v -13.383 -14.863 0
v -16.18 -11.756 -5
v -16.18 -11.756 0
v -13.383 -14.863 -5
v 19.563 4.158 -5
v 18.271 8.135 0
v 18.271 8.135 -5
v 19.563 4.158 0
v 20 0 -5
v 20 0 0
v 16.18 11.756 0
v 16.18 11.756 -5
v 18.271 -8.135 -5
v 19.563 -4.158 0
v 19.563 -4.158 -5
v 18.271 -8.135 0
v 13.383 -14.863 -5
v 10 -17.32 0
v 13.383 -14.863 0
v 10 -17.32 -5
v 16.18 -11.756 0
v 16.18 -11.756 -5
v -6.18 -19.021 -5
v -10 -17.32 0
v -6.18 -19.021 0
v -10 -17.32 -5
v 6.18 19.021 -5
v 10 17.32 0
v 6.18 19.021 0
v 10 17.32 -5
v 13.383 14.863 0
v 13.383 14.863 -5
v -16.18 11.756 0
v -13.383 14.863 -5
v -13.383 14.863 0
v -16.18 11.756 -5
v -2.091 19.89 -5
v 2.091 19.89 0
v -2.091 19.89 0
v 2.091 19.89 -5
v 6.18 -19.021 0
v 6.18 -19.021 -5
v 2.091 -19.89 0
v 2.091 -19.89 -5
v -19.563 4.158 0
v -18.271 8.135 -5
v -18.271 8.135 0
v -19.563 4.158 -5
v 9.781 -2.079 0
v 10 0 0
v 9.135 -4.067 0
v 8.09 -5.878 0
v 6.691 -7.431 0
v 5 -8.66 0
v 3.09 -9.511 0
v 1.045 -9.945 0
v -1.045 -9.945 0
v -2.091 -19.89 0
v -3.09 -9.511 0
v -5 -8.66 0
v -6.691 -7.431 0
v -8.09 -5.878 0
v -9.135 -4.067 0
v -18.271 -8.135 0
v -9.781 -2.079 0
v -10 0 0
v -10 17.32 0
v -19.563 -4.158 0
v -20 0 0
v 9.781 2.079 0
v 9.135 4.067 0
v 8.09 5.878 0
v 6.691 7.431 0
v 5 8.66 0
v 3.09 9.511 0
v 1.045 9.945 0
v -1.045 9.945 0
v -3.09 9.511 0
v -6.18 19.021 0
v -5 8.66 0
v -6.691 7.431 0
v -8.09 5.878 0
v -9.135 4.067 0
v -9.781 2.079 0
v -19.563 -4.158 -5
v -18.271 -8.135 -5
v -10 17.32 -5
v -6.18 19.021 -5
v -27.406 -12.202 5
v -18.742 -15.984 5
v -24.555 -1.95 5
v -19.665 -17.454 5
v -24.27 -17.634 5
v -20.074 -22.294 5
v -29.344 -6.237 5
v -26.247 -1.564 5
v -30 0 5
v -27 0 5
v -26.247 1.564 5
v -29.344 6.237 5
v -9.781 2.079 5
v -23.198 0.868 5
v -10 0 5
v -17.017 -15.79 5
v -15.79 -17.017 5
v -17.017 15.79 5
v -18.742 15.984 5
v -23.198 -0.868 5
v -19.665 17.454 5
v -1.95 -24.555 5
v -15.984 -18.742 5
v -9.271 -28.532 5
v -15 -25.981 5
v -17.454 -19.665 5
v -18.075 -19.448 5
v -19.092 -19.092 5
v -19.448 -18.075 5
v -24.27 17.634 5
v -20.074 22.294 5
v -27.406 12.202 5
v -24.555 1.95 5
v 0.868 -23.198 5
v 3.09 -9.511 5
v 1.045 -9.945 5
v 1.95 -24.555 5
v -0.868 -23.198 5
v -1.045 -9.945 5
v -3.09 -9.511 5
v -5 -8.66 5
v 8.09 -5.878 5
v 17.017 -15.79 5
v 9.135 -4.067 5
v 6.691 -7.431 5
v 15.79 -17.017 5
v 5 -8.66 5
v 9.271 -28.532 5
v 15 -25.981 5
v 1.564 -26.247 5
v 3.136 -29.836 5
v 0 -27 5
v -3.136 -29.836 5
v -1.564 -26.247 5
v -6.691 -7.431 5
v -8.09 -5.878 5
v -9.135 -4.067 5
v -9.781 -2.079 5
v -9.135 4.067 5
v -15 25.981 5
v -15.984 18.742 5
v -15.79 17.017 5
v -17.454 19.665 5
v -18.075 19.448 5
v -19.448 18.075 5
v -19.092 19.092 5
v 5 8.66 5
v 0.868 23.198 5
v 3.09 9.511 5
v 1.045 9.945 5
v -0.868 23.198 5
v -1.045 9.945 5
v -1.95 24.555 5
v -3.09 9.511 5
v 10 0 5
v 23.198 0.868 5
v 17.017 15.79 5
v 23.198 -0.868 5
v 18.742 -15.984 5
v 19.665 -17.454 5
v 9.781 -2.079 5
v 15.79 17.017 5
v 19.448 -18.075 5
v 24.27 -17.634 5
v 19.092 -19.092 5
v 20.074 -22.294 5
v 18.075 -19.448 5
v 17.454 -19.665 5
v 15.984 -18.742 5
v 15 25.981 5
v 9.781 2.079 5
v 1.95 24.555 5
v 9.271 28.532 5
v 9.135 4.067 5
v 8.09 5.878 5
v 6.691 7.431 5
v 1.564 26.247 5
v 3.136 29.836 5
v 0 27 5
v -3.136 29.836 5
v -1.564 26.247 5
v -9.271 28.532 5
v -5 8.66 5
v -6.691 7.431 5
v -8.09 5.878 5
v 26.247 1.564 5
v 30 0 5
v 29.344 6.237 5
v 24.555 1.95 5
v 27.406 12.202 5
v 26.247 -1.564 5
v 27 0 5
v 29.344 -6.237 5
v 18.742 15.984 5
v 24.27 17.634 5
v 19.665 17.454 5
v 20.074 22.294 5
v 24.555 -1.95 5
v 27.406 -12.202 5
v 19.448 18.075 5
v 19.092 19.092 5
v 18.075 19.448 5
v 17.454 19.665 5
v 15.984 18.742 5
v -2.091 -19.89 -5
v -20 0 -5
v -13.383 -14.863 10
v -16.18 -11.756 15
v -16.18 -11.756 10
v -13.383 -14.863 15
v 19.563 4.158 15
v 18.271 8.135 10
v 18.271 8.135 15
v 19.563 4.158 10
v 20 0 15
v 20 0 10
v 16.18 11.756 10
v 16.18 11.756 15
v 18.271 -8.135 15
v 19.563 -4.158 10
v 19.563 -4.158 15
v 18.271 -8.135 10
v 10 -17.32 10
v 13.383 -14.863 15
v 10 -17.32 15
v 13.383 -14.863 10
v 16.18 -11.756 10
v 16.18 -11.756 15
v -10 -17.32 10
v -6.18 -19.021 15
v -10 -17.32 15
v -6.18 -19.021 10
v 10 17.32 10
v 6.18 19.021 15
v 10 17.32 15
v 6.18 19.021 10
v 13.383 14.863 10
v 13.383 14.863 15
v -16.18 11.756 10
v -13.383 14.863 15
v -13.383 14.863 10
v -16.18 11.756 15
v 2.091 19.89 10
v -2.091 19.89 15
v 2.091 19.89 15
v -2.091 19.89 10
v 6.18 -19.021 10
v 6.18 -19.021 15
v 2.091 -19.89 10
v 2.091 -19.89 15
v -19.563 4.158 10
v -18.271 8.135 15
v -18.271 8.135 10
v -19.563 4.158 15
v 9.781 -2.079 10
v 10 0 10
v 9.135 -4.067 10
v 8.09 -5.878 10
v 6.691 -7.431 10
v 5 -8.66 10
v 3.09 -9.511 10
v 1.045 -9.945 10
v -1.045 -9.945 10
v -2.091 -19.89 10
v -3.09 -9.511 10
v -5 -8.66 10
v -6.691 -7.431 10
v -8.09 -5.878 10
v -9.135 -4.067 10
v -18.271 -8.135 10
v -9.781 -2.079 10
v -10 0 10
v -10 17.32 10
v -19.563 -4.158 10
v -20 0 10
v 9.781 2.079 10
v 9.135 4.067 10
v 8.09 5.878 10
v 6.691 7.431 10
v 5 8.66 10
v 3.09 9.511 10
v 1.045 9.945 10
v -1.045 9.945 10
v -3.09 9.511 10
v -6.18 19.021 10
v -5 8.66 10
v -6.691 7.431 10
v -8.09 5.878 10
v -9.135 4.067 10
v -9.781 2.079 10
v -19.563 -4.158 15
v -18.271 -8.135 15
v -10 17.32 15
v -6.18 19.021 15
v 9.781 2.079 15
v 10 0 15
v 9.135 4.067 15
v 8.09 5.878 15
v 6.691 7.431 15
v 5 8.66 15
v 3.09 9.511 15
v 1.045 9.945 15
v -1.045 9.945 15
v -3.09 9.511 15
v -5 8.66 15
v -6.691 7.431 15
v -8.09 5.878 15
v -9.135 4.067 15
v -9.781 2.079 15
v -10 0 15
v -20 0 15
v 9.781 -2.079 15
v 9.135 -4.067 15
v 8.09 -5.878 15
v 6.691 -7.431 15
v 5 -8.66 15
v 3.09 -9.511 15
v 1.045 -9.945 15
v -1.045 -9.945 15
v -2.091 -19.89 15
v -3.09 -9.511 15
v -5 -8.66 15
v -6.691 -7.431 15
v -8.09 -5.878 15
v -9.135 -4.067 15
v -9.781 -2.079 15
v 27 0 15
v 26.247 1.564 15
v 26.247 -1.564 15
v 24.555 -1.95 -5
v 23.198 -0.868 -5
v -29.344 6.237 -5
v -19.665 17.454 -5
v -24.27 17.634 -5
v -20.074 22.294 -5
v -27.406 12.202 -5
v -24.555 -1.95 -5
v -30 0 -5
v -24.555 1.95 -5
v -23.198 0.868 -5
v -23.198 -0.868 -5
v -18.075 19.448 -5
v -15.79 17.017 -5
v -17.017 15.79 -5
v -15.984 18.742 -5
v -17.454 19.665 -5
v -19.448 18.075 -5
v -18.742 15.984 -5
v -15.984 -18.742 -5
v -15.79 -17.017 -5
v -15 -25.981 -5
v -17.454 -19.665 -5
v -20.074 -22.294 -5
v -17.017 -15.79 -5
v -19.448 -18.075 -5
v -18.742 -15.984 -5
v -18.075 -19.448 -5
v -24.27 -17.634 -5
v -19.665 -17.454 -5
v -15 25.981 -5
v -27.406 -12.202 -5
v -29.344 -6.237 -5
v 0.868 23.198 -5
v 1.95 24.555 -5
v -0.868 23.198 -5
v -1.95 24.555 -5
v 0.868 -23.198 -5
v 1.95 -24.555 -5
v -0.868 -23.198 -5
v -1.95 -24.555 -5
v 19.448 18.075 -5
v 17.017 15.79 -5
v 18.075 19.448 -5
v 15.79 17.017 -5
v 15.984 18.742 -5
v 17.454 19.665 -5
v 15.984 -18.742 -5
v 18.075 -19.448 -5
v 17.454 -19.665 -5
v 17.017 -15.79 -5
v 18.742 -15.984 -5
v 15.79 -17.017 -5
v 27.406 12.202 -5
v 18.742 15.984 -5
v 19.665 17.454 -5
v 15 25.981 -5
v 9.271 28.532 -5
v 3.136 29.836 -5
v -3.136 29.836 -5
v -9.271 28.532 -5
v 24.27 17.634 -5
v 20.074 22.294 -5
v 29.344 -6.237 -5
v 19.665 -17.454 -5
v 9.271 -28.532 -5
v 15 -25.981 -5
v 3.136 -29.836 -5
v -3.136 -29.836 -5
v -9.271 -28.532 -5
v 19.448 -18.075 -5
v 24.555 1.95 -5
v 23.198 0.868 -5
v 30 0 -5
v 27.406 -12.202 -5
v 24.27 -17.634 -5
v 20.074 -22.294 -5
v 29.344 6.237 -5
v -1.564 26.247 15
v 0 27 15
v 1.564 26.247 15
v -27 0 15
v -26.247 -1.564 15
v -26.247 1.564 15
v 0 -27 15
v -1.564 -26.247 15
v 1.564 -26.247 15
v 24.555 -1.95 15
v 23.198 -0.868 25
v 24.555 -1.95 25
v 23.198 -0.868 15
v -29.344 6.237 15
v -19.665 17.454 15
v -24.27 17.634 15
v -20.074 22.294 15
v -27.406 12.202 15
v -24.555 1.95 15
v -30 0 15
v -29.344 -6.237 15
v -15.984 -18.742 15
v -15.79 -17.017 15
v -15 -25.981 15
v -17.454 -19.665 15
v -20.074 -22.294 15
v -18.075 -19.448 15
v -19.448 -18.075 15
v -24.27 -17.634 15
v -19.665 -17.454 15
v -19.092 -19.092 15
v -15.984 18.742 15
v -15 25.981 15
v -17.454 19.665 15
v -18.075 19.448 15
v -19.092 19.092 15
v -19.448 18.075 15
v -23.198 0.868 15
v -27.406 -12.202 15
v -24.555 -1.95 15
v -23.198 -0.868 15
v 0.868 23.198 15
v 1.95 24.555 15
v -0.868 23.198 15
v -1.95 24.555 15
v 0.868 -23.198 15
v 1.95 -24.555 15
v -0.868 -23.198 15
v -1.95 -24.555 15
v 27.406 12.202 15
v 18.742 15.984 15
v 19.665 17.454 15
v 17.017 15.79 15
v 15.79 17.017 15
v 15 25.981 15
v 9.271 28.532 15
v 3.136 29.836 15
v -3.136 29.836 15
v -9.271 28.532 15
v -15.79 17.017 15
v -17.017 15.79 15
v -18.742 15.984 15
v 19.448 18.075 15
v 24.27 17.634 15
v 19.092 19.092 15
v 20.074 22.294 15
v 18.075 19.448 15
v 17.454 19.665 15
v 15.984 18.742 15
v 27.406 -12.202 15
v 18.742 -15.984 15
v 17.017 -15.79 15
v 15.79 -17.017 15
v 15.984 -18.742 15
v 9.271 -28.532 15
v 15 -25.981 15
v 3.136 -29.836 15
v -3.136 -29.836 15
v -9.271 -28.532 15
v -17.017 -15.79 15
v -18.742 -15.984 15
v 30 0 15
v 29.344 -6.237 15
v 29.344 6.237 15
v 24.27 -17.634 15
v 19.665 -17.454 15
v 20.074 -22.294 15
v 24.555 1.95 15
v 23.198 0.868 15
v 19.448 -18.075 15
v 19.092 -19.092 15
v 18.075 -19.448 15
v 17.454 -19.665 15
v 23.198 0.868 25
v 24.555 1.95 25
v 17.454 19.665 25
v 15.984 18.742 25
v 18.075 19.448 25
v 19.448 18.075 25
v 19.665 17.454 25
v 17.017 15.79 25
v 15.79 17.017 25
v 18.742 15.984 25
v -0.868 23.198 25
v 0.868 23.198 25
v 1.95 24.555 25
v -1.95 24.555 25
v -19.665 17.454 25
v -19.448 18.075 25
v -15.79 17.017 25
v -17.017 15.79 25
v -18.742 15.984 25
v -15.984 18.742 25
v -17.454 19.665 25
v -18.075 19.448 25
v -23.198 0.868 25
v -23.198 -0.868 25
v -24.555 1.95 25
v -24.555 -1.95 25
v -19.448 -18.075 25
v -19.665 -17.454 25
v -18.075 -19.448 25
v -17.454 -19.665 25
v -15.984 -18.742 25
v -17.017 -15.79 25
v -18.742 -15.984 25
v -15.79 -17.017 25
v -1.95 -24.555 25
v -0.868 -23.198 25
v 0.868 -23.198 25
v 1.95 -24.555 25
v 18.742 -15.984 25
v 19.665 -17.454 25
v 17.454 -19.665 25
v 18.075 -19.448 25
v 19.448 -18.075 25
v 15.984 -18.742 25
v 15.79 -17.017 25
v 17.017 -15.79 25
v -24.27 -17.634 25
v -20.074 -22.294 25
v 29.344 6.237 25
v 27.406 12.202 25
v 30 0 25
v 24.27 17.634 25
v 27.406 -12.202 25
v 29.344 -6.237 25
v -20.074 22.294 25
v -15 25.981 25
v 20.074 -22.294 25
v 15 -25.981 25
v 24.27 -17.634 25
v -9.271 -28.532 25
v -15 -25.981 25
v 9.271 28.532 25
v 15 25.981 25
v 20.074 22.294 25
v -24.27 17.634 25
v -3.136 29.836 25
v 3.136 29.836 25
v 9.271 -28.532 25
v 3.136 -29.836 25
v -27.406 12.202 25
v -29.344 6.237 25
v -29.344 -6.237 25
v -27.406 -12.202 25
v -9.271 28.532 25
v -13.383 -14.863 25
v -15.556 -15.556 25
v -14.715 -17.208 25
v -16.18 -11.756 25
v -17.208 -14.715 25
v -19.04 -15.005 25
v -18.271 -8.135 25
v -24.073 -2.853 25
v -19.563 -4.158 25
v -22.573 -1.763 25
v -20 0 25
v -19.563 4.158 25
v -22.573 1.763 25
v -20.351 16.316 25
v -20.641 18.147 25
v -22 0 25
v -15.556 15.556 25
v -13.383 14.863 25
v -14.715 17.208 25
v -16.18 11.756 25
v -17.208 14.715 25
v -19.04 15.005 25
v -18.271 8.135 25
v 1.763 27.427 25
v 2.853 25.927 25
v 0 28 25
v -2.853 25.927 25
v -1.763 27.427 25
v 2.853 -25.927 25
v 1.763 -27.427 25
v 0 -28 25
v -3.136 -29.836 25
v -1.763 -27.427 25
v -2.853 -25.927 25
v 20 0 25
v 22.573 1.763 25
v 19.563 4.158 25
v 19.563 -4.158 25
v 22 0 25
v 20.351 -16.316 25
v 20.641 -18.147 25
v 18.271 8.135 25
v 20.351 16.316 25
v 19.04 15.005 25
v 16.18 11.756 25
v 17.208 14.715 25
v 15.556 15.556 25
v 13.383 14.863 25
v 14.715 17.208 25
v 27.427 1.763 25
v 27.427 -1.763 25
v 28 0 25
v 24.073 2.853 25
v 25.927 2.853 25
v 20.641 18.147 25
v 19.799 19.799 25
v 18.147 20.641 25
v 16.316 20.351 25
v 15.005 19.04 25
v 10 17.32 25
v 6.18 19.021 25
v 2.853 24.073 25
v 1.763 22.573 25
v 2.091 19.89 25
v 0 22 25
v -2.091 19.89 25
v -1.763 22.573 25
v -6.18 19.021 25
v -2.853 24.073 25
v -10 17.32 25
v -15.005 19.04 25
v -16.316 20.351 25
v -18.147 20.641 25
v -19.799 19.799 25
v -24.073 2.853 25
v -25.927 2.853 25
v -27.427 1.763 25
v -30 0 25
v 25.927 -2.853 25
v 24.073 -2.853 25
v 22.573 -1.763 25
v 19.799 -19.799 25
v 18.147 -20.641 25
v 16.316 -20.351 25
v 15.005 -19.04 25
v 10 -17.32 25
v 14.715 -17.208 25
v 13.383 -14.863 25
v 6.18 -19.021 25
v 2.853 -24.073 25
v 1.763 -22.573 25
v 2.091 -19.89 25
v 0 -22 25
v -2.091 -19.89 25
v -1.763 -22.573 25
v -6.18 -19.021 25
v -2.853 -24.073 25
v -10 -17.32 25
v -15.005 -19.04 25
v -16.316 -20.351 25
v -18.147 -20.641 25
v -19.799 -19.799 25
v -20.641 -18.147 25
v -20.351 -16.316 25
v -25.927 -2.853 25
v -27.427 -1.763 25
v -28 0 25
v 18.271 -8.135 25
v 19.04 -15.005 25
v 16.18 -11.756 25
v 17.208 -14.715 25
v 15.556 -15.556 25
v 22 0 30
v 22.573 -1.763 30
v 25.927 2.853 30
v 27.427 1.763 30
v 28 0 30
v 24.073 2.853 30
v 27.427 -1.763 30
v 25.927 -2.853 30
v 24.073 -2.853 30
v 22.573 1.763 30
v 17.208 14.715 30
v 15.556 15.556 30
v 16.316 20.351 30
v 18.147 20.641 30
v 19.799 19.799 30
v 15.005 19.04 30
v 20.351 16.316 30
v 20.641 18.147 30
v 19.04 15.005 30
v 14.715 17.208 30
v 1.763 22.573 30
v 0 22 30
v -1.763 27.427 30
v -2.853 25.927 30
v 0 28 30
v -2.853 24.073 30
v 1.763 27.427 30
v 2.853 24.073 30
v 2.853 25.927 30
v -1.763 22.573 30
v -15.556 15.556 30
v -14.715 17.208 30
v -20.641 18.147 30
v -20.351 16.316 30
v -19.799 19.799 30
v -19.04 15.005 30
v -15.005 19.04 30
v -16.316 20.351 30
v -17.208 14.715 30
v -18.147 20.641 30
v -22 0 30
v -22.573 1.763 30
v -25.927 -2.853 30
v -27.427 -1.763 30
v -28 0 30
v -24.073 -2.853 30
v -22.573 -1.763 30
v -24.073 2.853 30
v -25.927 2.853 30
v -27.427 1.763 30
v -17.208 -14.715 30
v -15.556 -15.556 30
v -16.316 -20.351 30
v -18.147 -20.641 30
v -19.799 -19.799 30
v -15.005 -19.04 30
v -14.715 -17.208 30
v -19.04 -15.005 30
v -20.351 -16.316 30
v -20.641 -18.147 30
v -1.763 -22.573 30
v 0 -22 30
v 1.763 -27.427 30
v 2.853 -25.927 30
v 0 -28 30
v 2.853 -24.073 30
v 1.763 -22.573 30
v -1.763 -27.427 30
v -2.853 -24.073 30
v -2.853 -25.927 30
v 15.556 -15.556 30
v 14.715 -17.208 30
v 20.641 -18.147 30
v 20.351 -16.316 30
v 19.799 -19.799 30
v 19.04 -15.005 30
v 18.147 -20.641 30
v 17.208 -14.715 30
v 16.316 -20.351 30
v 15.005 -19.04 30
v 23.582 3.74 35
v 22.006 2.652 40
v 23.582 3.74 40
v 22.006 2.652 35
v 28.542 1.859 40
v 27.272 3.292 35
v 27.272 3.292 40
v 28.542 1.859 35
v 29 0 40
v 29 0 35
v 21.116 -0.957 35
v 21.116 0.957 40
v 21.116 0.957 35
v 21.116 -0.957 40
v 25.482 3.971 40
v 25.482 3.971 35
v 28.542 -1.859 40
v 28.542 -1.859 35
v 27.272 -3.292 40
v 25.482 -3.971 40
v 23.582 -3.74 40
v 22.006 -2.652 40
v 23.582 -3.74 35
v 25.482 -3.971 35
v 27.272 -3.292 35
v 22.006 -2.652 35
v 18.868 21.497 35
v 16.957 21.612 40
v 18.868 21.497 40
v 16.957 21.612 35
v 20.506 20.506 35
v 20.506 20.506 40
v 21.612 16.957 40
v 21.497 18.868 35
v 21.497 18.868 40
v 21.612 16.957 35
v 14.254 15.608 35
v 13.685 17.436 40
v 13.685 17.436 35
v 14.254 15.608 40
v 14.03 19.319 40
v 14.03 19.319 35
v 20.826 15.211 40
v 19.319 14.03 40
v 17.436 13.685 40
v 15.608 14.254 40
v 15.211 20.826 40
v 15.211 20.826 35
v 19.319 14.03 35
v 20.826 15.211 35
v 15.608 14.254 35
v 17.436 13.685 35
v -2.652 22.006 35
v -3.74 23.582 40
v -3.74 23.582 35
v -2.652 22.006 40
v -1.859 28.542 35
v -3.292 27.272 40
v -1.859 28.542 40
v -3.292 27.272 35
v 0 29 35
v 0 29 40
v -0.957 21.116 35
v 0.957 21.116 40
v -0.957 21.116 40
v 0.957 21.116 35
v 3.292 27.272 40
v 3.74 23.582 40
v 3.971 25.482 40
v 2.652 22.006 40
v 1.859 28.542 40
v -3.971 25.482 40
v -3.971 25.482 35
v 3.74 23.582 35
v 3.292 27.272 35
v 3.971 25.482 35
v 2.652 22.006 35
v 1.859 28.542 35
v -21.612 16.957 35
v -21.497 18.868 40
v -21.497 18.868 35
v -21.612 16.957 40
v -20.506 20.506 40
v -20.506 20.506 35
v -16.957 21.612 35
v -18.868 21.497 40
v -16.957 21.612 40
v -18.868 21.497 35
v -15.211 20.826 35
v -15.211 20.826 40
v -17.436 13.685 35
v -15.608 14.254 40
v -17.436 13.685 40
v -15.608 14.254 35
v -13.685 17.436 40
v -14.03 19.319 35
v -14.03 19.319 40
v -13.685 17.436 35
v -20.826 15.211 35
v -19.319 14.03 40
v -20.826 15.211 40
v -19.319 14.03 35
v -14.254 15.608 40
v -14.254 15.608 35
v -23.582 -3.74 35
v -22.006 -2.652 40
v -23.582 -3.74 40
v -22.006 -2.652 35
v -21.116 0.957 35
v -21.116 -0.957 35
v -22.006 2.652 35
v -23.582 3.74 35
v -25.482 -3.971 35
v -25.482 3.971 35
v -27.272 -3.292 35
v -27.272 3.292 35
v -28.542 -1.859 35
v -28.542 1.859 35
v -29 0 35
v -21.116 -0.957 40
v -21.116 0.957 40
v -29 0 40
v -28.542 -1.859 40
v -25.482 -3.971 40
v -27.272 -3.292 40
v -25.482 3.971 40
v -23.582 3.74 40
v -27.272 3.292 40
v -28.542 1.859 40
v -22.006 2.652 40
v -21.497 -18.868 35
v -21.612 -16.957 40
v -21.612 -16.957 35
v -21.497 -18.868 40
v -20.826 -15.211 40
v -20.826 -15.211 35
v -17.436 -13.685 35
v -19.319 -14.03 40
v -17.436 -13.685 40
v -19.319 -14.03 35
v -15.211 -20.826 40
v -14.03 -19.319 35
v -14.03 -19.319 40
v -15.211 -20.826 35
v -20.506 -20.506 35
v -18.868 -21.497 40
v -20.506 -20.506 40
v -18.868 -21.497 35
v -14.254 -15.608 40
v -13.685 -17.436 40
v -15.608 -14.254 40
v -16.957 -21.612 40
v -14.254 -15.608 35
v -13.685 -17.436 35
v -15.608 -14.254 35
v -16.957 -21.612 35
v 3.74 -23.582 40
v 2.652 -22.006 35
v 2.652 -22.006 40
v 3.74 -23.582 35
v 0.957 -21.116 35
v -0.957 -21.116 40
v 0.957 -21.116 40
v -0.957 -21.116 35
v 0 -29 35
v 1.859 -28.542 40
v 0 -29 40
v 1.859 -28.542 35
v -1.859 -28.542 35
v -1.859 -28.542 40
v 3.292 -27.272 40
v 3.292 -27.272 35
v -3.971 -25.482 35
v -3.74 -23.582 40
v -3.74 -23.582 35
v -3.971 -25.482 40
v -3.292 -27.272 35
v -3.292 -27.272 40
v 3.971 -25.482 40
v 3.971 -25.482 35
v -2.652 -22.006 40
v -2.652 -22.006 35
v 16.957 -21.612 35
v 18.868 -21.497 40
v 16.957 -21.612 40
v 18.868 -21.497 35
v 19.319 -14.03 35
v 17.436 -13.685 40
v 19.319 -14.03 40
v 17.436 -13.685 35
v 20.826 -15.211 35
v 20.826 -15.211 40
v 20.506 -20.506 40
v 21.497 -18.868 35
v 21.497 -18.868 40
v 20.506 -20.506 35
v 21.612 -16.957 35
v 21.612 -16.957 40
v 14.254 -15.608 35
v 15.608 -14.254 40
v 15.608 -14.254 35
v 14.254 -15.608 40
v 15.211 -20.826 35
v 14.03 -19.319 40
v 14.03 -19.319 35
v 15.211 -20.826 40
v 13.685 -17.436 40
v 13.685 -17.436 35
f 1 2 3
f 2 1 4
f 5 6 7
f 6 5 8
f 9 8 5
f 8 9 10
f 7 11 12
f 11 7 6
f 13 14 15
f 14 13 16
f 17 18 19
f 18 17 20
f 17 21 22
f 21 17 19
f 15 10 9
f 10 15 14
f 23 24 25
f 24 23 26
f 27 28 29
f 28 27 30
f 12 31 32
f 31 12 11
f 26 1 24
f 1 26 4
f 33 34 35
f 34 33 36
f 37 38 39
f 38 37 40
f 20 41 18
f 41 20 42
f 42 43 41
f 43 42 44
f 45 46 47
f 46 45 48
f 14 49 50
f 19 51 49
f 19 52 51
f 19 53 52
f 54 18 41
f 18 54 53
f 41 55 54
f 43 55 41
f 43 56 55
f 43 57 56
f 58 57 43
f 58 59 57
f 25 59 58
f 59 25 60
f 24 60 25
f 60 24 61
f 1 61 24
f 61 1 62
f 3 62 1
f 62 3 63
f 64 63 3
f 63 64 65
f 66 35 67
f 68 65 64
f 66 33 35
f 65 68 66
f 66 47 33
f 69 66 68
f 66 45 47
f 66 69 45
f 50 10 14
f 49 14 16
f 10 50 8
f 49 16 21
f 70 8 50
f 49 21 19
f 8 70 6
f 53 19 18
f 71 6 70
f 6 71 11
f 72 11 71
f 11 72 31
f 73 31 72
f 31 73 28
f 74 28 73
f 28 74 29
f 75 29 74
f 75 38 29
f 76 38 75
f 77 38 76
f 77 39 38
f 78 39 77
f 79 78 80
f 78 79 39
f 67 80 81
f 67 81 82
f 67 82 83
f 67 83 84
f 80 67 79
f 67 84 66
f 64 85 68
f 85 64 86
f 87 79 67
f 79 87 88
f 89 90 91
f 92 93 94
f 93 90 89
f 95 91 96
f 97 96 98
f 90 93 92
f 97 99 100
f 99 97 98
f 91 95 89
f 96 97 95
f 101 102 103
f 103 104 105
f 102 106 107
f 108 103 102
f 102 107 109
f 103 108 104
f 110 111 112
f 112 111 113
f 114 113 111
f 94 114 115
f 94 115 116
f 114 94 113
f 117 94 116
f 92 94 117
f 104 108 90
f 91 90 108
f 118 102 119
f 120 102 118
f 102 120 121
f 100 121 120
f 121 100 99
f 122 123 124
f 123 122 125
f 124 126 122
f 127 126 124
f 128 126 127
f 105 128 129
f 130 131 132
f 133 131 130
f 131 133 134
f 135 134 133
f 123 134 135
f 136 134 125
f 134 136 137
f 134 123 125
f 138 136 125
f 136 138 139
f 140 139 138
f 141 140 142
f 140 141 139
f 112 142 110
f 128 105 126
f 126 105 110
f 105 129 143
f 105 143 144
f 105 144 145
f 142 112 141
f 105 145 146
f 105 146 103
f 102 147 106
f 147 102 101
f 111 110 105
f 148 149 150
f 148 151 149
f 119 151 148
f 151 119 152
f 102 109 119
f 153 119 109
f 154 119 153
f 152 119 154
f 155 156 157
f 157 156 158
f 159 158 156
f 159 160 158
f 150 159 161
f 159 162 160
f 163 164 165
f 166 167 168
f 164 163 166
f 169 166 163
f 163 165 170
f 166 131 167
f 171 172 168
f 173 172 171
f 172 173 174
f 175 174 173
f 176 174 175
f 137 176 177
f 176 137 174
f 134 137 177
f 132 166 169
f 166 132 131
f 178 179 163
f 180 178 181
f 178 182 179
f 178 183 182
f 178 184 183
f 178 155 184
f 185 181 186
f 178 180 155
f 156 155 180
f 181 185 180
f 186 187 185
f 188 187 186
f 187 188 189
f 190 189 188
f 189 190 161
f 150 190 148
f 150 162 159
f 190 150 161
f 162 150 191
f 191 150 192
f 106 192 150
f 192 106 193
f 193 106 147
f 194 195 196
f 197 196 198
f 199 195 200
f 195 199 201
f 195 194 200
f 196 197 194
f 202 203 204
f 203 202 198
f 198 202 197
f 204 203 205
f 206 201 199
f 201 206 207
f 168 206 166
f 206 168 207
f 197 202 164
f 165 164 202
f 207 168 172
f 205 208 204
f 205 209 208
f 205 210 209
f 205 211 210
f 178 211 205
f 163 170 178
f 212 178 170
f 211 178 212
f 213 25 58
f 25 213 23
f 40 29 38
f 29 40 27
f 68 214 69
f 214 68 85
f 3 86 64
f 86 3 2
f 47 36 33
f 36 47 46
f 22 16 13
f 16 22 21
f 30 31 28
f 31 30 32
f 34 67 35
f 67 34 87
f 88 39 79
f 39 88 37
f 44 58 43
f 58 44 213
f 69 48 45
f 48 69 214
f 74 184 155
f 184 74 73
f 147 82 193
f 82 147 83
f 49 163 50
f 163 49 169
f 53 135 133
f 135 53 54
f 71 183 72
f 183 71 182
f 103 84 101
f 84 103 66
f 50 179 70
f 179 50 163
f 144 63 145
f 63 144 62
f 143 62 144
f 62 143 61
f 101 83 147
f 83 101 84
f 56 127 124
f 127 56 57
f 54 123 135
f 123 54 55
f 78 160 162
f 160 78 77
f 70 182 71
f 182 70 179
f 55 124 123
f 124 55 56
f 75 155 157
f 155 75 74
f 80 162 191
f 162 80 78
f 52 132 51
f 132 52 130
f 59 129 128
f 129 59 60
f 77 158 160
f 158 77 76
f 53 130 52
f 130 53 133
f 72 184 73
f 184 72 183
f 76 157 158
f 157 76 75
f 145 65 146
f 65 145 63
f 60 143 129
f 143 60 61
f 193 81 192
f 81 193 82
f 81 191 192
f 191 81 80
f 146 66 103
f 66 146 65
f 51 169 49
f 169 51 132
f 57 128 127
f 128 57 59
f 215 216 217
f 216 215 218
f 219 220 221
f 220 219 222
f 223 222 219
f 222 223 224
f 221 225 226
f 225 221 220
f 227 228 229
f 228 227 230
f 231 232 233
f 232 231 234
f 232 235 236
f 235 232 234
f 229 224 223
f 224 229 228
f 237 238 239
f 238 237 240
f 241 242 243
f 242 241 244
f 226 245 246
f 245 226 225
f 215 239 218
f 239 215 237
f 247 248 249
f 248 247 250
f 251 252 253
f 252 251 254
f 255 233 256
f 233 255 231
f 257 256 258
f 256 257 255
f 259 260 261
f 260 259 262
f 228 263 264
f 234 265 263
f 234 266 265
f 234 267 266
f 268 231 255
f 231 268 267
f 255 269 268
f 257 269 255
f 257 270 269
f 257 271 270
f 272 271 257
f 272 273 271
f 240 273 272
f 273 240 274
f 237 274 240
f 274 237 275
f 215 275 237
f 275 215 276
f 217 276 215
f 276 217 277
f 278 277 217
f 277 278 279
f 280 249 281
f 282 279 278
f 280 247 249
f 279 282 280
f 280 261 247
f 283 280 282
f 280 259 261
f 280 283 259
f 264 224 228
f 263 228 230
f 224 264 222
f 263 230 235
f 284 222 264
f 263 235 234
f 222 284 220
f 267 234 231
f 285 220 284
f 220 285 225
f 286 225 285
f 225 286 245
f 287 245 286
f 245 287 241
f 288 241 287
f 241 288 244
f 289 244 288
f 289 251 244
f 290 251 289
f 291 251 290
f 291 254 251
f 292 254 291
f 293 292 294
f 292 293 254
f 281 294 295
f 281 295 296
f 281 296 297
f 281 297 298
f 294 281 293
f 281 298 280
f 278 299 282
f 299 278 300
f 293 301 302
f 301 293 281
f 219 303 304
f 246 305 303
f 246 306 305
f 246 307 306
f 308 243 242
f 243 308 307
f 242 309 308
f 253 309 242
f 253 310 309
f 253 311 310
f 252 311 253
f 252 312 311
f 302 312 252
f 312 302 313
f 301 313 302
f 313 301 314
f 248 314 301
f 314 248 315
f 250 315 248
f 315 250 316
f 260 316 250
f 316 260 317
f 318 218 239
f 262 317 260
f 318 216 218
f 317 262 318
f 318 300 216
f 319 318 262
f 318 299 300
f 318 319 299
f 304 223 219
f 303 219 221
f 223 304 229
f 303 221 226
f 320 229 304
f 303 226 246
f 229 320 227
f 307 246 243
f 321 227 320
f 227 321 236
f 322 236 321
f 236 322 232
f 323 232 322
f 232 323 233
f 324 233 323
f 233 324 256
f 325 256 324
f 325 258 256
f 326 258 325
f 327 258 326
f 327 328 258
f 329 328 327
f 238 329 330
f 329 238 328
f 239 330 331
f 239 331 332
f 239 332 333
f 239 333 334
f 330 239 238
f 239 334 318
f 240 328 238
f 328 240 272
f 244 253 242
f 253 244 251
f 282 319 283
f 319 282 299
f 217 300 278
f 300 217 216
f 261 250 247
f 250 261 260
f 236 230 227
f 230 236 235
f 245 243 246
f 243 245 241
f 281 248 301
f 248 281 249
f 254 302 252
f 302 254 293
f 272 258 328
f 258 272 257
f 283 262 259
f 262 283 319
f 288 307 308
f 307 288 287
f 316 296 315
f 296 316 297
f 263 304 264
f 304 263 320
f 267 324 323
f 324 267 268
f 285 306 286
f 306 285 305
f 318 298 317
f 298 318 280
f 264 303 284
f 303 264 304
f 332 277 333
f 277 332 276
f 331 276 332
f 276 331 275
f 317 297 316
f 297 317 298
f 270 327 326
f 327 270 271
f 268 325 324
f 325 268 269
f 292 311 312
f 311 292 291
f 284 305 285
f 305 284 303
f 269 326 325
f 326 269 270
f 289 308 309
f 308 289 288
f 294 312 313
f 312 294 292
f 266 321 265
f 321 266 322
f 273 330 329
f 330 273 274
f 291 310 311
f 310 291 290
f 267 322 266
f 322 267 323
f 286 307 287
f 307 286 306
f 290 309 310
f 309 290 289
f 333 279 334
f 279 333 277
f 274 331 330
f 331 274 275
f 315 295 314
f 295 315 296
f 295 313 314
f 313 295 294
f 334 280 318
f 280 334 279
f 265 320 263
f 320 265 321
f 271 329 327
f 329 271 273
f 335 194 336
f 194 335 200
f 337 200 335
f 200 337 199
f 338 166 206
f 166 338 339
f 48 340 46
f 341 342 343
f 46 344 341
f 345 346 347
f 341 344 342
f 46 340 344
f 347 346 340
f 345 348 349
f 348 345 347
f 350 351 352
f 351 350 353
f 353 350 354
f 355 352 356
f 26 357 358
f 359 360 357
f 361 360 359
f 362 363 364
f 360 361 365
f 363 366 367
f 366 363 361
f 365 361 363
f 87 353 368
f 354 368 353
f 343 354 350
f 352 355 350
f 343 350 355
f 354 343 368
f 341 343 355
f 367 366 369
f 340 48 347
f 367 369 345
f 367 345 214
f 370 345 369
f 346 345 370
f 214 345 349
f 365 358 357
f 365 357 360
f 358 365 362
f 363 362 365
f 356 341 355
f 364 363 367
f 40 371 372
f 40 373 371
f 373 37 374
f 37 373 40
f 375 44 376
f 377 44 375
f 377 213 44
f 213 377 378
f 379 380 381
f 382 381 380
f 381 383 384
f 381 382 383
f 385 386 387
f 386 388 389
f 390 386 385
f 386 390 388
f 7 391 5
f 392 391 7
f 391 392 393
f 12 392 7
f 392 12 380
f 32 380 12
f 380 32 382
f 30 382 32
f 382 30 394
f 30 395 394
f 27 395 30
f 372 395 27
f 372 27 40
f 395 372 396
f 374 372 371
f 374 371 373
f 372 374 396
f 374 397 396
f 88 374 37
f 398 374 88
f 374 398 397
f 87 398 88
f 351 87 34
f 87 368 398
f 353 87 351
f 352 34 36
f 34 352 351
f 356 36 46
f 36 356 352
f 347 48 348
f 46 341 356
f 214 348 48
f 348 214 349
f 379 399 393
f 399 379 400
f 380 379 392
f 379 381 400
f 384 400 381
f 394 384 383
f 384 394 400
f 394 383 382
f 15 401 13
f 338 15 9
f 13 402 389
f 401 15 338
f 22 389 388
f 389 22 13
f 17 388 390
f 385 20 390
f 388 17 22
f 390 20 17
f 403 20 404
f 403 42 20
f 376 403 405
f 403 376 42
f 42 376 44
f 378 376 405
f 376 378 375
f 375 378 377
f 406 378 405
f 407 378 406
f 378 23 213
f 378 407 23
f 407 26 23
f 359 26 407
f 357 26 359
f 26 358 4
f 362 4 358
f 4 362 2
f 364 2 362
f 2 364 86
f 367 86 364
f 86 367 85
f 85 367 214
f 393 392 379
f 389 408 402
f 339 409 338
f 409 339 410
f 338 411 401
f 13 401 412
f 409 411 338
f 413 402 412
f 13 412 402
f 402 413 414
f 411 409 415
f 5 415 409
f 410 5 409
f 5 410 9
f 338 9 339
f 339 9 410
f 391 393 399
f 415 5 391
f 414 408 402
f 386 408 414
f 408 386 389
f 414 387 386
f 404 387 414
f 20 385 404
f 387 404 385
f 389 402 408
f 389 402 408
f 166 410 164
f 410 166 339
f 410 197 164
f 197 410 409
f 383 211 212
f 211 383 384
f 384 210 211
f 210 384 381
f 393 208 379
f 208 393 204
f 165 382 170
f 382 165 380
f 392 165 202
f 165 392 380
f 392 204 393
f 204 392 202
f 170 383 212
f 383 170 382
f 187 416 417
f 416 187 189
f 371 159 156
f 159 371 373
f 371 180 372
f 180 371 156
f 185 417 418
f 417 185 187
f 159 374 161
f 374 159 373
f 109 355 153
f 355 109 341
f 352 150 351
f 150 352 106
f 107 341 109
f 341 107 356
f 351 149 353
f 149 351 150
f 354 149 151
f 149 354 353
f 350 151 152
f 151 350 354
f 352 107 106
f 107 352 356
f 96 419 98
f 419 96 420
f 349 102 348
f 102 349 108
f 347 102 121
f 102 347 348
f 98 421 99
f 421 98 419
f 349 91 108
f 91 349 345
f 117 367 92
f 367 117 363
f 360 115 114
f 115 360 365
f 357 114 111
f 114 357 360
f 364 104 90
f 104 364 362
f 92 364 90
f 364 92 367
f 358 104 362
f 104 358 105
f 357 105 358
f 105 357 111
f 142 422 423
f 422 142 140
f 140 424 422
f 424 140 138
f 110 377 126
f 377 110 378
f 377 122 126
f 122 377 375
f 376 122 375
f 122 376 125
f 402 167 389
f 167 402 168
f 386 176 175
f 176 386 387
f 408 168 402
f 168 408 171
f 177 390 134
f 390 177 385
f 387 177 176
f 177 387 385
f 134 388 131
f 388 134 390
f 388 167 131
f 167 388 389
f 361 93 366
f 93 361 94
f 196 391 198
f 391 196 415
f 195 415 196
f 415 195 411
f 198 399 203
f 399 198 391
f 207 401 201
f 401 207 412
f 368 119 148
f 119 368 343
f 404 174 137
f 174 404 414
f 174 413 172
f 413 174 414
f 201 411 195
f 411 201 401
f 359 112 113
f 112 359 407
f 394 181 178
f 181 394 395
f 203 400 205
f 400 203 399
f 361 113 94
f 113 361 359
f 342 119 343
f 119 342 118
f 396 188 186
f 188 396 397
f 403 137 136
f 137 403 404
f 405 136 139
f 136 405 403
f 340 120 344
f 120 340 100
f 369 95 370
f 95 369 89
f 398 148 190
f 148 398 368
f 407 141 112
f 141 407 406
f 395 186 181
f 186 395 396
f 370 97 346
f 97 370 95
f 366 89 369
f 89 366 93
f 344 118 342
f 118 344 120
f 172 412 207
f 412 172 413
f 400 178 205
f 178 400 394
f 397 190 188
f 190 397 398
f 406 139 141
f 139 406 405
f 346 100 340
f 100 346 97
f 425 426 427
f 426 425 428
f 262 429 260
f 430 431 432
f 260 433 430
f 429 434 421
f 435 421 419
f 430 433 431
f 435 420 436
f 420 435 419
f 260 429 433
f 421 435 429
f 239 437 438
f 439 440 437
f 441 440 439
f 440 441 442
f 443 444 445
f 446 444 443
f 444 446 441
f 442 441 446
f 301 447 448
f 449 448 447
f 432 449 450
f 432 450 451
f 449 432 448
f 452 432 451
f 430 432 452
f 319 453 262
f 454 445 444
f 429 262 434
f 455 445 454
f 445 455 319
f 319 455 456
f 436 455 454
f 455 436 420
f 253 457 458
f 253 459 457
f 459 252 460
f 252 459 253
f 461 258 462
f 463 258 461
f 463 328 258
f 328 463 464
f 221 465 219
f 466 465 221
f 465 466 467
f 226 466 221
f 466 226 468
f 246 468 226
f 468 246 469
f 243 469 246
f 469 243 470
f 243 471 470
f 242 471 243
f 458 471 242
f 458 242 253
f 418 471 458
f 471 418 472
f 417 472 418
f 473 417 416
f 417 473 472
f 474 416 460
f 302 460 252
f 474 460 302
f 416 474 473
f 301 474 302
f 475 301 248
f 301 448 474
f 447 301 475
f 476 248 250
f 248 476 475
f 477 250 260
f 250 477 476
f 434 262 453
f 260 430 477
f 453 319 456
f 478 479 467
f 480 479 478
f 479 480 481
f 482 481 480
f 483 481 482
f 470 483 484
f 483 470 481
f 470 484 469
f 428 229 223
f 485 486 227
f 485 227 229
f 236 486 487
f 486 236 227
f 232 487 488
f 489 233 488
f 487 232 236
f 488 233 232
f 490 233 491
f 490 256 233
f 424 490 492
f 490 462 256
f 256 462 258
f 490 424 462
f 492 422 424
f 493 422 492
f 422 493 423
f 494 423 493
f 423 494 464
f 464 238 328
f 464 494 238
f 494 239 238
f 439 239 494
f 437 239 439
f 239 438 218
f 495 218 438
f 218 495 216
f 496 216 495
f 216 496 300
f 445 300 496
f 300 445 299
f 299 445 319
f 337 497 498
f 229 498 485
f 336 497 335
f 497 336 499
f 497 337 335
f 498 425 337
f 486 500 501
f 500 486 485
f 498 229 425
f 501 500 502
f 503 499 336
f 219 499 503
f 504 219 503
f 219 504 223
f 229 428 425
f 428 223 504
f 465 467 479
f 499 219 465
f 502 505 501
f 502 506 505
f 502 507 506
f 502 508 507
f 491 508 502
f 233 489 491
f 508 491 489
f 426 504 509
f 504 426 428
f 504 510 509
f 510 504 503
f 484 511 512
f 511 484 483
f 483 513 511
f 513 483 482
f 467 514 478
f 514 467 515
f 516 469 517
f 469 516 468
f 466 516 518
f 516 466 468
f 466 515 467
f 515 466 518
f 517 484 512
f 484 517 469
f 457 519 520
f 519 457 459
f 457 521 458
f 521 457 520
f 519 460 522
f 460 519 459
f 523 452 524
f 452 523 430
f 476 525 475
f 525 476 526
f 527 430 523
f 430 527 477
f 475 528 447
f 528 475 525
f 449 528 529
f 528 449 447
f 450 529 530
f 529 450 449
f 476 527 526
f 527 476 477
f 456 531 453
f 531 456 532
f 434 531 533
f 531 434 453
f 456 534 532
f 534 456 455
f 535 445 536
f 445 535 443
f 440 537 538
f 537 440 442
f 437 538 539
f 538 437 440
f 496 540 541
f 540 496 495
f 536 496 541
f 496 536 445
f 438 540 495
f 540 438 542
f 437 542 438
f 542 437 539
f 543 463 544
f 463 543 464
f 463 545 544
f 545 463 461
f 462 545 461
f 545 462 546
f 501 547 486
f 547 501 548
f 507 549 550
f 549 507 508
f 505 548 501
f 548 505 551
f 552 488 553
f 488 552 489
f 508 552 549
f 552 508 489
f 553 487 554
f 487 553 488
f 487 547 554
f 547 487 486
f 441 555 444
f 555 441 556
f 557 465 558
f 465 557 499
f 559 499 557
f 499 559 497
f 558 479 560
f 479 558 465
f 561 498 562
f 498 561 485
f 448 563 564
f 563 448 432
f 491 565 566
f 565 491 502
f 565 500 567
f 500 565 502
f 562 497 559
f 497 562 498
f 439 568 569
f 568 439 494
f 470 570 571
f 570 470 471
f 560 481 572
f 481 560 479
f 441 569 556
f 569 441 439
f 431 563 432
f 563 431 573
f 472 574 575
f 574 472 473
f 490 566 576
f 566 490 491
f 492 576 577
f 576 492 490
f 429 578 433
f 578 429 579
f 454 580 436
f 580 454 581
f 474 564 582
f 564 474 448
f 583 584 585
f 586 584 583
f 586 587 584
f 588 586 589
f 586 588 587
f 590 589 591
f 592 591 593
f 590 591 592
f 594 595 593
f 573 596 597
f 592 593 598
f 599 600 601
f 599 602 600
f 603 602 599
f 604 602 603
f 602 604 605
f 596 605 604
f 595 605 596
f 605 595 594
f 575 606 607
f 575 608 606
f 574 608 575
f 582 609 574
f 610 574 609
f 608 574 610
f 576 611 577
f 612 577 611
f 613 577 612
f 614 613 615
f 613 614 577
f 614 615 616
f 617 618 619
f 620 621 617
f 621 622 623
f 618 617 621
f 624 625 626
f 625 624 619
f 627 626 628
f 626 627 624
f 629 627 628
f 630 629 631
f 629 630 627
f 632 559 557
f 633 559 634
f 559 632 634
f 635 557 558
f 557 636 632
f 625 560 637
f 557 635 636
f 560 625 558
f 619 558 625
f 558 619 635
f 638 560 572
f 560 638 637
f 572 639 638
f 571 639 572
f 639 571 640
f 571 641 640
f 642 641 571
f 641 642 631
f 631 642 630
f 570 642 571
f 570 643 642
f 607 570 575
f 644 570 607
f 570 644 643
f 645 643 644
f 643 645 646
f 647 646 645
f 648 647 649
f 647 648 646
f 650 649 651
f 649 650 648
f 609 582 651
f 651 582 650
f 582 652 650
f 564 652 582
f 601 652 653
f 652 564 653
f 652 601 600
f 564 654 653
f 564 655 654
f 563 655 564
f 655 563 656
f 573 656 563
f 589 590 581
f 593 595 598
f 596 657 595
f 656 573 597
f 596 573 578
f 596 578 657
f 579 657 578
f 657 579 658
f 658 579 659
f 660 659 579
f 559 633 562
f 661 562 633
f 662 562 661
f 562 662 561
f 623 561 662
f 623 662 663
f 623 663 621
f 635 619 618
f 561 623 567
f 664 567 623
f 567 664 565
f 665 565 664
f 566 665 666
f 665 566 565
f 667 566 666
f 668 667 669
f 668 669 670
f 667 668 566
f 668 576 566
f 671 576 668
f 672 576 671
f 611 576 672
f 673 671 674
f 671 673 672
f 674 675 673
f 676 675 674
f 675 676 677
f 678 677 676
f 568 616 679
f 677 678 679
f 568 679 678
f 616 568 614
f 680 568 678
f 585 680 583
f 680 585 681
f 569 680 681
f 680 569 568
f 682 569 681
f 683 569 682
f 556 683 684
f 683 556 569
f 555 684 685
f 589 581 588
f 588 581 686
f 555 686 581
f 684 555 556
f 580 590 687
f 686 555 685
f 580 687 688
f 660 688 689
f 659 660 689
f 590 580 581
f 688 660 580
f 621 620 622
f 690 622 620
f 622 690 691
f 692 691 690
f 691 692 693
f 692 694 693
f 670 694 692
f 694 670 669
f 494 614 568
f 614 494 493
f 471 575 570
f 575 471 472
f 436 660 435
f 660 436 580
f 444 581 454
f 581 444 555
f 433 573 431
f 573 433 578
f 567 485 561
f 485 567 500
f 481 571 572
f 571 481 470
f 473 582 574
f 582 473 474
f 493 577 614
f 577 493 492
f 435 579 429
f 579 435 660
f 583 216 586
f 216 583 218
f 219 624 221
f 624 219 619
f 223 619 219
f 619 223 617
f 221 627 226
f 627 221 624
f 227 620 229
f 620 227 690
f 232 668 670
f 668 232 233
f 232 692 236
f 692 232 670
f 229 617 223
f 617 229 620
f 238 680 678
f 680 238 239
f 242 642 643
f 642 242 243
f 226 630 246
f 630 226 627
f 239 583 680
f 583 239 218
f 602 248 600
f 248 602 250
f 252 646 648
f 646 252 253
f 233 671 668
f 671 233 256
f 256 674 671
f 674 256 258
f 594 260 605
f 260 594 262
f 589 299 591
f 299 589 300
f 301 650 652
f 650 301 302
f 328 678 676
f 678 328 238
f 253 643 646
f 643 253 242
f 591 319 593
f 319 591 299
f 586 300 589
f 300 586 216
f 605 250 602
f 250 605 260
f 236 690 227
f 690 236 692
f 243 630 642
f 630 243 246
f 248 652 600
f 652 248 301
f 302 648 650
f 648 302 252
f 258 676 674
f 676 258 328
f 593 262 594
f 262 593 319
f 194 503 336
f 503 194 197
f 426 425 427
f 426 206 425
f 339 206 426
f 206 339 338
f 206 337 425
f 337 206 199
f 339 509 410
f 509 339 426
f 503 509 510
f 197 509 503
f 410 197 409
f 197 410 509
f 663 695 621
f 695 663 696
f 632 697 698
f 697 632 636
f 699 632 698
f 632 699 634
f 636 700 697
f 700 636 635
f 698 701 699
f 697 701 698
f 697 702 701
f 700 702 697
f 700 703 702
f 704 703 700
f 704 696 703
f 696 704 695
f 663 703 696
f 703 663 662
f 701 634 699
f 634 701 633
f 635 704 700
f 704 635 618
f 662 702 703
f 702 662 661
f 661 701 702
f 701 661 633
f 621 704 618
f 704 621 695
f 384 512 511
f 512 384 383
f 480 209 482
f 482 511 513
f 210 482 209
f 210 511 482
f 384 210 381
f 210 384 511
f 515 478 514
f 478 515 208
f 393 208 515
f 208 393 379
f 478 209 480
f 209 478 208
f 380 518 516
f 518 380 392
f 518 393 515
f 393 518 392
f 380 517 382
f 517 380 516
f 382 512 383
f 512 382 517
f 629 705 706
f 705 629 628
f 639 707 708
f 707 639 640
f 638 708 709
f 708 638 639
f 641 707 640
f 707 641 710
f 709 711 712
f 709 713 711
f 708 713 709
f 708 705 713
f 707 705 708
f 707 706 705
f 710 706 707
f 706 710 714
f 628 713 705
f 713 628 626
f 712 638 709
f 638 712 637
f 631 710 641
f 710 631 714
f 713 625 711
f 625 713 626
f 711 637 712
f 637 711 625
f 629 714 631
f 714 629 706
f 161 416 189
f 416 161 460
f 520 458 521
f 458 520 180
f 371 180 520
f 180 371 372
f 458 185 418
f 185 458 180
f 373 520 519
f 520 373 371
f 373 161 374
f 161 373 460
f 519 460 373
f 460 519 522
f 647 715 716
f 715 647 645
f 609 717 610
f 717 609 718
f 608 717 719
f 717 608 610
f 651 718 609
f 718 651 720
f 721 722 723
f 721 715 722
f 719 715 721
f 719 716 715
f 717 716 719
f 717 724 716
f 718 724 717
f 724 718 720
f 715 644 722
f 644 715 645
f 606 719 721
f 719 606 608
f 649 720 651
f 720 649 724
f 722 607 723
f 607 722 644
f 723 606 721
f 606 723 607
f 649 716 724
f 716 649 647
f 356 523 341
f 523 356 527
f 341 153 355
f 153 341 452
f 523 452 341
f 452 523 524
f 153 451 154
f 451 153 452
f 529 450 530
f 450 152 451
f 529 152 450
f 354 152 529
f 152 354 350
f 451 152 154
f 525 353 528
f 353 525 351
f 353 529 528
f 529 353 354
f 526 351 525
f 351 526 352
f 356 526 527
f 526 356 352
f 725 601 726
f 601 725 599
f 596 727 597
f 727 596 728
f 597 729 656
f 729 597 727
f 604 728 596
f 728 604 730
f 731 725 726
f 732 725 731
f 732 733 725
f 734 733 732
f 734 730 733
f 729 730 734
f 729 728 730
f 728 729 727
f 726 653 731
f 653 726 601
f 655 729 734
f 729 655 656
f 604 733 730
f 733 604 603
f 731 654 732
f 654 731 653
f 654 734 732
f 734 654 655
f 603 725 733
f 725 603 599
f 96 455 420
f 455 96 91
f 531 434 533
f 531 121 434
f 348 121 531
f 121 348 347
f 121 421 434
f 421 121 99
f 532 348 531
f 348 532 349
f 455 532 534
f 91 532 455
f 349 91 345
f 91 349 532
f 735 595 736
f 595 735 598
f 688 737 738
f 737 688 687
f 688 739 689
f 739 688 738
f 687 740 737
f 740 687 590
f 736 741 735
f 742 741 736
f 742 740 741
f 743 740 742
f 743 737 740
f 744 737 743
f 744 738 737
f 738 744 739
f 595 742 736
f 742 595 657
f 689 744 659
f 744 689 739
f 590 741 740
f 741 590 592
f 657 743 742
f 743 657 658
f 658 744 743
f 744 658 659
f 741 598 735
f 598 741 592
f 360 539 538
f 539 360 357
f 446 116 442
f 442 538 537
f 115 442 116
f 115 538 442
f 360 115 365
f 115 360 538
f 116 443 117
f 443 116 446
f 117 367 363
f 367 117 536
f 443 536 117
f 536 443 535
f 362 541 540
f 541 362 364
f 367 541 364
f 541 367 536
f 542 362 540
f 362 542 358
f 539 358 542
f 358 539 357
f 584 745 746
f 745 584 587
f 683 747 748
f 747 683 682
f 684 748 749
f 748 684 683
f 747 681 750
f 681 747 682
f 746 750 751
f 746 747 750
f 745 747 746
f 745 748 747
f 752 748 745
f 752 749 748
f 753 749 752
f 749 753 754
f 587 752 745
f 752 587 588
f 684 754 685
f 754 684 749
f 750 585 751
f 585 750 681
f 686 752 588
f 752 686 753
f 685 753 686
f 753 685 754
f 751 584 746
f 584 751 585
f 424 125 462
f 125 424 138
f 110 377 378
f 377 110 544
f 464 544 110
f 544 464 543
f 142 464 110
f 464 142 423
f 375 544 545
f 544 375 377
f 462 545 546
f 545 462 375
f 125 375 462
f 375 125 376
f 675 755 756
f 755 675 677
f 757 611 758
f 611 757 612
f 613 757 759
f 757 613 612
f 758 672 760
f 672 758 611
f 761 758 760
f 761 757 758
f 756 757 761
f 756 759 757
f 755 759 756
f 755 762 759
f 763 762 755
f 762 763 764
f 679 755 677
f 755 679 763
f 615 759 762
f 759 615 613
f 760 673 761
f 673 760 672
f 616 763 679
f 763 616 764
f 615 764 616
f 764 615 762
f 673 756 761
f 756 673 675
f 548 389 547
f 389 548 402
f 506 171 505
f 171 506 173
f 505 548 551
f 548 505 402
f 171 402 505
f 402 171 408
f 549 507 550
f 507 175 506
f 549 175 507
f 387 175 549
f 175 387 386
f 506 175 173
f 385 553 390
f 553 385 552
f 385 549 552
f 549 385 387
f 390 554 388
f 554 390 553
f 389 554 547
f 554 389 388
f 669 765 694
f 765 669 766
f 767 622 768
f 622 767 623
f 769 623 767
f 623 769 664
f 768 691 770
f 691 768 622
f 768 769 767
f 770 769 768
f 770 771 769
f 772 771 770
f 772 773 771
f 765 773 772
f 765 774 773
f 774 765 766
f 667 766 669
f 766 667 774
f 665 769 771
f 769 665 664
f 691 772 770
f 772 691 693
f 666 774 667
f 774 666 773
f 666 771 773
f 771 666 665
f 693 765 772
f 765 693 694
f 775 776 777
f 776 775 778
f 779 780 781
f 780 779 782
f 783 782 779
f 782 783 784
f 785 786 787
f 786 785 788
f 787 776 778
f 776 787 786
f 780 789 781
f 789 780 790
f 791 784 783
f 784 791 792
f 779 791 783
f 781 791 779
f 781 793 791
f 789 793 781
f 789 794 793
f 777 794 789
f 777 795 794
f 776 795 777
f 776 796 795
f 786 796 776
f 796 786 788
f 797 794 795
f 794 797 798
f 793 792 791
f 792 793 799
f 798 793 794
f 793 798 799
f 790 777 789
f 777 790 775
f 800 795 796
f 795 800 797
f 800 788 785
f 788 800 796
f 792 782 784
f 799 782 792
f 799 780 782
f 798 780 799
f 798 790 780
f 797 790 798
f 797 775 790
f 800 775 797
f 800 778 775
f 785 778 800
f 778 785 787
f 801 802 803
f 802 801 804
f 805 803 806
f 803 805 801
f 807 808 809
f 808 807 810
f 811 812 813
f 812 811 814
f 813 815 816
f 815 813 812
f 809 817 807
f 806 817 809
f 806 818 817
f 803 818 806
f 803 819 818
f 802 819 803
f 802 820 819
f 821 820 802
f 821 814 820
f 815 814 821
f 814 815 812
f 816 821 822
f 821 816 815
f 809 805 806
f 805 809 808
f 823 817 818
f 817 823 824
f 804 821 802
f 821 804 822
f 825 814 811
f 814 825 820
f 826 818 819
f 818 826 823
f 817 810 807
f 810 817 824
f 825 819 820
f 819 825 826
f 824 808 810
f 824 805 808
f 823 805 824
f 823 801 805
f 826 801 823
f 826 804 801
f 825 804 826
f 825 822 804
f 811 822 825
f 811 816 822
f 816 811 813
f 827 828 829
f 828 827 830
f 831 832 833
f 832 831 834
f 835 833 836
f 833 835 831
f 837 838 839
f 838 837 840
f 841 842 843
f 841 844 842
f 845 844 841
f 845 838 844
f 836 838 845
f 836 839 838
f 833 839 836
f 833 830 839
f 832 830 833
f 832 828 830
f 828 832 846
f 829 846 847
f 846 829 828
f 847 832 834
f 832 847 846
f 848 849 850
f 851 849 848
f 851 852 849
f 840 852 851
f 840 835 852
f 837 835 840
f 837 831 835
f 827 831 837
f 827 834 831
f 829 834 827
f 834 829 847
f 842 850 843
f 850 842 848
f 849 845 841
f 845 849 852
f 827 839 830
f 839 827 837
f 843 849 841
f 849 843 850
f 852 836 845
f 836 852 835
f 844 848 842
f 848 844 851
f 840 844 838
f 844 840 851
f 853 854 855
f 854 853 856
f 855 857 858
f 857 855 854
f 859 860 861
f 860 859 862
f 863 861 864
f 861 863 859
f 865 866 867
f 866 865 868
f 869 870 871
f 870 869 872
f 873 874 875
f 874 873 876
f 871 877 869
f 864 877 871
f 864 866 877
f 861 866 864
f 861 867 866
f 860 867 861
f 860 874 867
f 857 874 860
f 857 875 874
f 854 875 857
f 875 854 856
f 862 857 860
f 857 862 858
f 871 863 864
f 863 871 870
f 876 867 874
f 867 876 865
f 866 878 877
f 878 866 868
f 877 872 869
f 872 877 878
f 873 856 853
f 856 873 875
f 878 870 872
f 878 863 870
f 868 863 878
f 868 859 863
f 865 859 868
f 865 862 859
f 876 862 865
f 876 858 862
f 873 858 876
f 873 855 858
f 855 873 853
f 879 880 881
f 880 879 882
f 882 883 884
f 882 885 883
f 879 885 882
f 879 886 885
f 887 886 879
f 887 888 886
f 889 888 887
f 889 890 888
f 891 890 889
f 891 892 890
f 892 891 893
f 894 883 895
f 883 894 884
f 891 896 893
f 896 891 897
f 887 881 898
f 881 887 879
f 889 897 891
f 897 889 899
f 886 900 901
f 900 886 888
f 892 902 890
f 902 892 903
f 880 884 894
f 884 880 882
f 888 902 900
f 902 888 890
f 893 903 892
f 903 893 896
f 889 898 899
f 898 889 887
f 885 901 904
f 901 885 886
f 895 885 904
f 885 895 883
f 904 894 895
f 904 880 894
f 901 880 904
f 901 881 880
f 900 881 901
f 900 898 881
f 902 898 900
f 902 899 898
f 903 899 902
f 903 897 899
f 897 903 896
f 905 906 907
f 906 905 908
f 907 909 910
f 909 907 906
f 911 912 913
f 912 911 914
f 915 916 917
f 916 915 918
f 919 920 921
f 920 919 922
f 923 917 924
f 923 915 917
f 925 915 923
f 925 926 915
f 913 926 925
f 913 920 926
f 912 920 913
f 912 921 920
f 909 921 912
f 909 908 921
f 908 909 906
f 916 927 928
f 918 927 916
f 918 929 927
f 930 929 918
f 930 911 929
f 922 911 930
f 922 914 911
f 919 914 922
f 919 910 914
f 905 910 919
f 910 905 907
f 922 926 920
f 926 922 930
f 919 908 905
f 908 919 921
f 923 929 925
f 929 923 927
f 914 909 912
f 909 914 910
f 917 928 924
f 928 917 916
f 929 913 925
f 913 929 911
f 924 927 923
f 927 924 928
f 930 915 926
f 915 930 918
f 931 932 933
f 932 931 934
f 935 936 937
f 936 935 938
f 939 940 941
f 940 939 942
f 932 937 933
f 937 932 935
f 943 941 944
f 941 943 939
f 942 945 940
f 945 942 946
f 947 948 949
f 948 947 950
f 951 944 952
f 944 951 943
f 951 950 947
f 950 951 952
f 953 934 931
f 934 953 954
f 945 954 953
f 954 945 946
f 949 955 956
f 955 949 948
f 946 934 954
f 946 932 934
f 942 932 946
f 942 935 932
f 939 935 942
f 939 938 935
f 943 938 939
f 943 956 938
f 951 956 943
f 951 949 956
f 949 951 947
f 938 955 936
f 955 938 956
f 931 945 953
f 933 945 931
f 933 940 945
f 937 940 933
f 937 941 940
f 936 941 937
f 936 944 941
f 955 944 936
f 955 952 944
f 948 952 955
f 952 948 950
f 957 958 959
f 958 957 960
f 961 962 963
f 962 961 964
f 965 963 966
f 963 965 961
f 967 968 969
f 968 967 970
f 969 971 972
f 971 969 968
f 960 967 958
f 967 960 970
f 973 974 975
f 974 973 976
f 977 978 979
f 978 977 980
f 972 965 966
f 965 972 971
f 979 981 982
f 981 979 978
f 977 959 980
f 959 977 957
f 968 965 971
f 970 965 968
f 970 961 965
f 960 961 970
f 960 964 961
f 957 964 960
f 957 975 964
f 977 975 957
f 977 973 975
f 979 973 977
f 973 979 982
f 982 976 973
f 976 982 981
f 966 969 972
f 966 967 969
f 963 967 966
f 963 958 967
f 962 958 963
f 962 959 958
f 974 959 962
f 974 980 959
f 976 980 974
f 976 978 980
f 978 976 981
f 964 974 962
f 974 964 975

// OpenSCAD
// Parameters for components
module spacer_ring() {
    difference() {
        cylinder(h = 5, r = 20); // Outer cylinder
        cylinder(h = 6, r = 10); // Inner hole
    }
}

module flange_plate() {
    difference() {
        cylinder(h = 10, r = 30); // Outer cylinder
        cylinder(h = 11, r = 20); // Inner hole
        for (i = [0:45:360]) {
            rotate([0, 0, i]) translate([25, 0, 0]) cylinder(h = 12, r = 2); // Bolt holes
        }
    }
}

module nut() {
    cylinder(h = 5, r = 4); // Hexagonal nut approximation
}

module bolt() {
    union() {
        cylinder(h = 30, r = 2); // Bolt shaft
        translate([0, 0, 30]) cylinder(h = 5, r = 3); // Bolt head
    }
}

// Assembly
module flexible_coupling() {
    // Layer 1: Spacer Ring
    translate([0, 0, 0]) spacer_ring();

    // Layer 2: Spacer Ring
    translate([0, 0, 10]) spacer_ring();

    // Flange Plates
    translate([0, 0, -5]) flange_plate();
    translate([0, 0, 15]) flange_plate();

    // Bolts and Nuts
    for (i = [0:45:360]) {
        rotate([0, 0, i]) translate([25, 0, -5]) bolt();
        rotate([0, 0, i]) translate([25, 0, 35]) nut();
    }
}

// Render the flexible coupling
flexible_coupling();
